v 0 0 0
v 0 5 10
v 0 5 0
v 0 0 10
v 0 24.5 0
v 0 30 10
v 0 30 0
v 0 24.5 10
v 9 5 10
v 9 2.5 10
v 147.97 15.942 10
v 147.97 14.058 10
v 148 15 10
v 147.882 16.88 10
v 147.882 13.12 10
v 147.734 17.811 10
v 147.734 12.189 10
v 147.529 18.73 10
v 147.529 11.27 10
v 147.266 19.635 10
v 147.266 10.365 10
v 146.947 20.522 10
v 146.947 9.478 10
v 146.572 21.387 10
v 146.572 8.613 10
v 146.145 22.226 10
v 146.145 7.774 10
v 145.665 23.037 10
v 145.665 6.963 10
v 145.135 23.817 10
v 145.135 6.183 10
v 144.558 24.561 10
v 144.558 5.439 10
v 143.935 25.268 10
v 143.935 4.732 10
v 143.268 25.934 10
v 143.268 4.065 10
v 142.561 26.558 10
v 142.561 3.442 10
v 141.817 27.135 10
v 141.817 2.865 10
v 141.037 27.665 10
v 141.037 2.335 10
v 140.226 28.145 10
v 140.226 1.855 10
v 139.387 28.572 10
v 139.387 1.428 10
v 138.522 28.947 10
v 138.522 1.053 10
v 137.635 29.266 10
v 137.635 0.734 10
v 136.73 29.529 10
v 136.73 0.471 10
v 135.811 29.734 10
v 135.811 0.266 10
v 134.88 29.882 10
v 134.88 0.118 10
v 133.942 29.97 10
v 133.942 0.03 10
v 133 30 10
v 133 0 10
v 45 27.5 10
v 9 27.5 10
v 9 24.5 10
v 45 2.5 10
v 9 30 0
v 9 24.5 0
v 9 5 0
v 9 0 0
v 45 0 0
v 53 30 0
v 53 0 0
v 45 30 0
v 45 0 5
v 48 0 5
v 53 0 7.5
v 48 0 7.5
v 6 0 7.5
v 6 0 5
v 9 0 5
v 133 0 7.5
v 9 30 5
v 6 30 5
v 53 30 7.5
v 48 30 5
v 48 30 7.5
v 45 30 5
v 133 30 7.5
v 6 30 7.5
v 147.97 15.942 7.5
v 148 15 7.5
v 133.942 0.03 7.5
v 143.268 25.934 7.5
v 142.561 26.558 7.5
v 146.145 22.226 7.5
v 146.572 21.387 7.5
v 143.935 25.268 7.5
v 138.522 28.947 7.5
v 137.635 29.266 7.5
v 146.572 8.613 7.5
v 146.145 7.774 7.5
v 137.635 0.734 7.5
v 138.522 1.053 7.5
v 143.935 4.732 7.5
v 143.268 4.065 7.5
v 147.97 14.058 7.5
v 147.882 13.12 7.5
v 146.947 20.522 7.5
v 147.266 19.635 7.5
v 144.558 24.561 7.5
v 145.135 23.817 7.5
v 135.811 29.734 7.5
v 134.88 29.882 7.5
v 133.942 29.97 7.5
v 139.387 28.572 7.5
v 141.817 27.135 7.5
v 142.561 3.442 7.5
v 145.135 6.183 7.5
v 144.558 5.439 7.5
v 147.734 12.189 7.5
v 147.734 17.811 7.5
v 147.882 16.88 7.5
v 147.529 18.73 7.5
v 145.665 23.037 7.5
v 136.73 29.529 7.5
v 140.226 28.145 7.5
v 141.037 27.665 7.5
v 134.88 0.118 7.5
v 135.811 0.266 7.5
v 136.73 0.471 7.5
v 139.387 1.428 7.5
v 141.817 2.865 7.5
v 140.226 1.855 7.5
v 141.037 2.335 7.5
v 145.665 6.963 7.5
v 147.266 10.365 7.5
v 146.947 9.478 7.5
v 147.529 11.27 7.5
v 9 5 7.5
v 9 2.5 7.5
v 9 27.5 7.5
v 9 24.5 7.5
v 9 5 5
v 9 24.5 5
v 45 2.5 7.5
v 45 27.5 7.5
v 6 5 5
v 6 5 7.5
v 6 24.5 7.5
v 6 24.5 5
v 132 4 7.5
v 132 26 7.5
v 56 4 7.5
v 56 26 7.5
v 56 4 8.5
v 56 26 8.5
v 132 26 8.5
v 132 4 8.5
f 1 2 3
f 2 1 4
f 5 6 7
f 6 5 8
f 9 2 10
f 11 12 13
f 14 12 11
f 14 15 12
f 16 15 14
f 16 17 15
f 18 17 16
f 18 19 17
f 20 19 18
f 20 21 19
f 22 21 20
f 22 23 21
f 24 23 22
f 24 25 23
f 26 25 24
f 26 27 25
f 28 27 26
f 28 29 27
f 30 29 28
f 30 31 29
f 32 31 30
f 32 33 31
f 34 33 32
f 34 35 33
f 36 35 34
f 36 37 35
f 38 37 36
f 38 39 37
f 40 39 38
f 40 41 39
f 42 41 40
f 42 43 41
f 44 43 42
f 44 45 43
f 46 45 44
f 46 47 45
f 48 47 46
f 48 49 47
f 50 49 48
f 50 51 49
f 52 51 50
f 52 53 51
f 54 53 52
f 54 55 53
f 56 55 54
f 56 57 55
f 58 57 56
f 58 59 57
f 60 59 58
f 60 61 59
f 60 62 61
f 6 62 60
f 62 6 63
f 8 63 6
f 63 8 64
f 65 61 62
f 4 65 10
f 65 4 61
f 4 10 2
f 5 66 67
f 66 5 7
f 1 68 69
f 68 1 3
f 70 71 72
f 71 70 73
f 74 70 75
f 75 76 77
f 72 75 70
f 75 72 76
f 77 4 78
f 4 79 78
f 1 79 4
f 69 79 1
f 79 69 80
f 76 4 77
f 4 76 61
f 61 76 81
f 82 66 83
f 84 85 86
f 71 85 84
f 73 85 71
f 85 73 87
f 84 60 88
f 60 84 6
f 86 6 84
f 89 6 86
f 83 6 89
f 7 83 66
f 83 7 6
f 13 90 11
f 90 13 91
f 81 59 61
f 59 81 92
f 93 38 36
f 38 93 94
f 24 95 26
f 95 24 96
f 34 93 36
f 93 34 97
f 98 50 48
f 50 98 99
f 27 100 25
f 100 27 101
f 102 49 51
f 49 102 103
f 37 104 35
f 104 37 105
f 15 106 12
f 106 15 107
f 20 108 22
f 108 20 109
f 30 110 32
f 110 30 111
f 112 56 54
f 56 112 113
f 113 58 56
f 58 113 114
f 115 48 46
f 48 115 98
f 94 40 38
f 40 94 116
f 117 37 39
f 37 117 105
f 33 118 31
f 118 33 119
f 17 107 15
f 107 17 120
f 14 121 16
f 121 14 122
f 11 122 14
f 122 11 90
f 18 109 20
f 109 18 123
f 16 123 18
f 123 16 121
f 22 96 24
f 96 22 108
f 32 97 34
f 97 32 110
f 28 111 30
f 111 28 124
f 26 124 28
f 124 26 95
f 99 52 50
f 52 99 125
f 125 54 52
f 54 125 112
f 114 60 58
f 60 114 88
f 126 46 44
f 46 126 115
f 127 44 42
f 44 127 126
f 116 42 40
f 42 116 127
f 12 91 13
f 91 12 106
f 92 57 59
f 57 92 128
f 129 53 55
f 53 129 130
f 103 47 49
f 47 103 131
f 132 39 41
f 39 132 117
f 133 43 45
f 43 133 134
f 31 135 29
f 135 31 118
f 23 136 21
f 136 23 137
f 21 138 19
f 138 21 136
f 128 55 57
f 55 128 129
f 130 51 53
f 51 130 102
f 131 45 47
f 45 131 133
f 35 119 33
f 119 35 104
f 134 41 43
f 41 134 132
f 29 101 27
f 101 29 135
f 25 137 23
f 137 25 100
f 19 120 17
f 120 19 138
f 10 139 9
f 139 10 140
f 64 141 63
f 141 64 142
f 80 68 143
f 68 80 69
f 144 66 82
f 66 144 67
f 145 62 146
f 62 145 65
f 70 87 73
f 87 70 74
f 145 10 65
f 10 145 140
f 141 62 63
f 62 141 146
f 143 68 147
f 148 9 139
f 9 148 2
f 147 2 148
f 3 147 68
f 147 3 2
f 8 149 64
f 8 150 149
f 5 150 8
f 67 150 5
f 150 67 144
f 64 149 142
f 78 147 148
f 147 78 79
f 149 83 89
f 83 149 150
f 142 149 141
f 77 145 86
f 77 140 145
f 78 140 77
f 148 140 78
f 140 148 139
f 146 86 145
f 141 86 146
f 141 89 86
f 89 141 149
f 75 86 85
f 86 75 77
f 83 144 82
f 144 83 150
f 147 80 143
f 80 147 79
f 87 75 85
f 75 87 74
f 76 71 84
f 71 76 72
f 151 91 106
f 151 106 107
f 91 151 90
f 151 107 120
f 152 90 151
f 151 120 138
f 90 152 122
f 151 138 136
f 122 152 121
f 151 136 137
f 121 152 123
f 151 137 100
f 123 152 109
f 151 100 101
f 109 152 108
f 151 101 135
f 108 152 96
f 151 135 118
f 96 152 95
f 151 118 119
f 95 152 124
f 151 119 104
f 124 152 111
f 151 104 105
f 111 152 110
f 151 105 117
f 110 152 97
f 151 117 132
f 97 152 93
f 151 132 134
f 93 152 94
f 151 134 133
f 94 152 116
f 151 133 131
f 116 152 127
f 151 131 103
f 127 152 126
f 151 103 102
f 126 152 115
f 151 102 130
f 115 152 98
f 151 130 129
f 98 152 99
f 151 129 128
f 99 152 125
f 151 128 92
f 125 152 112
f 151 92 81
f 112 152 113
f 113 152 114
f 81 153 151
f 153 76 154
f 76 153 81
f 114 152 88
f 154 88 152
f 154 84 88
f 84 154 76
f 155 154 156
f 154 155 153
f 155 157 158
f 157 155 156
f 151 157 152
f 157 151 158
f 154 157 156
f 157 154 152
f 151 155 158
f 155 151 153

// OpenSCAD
$fn=100;

difference() {
//Basic shape
union() {
cube([133,30,10]);
translate([133,30/2,0])cylinder(10,30/2,30/2);
}
//Remove area for circuit board
translate([9,2.5,0]) cube([45-9,30-5,10]);
translate([0,5,0]) cube([9,29.5-10,10]);
//Remove notch for circuit board
translate([6,0,5]) cube([48-6,30,2.5]);
//Remove other side of clip
translate([9,0,0]) cube([45-9,30,5]);

translate([53,0,-2.5]) cube([133,39.9,10]);
#translate([56,4,6.5]) cube([76,22,2,]);

//Remove cylinder for battery
//translate([138,15,-1]) rotate([0,275,0]) cylinder(h=68,d1=20,d2=20);
//Battery zap strap
//translate([105,2,0]) cube([5,2,10]);
//translate([105,26,0]) cube([5,2,10]);



}


//translate([0,0,0]) cube([45,33,3]);
